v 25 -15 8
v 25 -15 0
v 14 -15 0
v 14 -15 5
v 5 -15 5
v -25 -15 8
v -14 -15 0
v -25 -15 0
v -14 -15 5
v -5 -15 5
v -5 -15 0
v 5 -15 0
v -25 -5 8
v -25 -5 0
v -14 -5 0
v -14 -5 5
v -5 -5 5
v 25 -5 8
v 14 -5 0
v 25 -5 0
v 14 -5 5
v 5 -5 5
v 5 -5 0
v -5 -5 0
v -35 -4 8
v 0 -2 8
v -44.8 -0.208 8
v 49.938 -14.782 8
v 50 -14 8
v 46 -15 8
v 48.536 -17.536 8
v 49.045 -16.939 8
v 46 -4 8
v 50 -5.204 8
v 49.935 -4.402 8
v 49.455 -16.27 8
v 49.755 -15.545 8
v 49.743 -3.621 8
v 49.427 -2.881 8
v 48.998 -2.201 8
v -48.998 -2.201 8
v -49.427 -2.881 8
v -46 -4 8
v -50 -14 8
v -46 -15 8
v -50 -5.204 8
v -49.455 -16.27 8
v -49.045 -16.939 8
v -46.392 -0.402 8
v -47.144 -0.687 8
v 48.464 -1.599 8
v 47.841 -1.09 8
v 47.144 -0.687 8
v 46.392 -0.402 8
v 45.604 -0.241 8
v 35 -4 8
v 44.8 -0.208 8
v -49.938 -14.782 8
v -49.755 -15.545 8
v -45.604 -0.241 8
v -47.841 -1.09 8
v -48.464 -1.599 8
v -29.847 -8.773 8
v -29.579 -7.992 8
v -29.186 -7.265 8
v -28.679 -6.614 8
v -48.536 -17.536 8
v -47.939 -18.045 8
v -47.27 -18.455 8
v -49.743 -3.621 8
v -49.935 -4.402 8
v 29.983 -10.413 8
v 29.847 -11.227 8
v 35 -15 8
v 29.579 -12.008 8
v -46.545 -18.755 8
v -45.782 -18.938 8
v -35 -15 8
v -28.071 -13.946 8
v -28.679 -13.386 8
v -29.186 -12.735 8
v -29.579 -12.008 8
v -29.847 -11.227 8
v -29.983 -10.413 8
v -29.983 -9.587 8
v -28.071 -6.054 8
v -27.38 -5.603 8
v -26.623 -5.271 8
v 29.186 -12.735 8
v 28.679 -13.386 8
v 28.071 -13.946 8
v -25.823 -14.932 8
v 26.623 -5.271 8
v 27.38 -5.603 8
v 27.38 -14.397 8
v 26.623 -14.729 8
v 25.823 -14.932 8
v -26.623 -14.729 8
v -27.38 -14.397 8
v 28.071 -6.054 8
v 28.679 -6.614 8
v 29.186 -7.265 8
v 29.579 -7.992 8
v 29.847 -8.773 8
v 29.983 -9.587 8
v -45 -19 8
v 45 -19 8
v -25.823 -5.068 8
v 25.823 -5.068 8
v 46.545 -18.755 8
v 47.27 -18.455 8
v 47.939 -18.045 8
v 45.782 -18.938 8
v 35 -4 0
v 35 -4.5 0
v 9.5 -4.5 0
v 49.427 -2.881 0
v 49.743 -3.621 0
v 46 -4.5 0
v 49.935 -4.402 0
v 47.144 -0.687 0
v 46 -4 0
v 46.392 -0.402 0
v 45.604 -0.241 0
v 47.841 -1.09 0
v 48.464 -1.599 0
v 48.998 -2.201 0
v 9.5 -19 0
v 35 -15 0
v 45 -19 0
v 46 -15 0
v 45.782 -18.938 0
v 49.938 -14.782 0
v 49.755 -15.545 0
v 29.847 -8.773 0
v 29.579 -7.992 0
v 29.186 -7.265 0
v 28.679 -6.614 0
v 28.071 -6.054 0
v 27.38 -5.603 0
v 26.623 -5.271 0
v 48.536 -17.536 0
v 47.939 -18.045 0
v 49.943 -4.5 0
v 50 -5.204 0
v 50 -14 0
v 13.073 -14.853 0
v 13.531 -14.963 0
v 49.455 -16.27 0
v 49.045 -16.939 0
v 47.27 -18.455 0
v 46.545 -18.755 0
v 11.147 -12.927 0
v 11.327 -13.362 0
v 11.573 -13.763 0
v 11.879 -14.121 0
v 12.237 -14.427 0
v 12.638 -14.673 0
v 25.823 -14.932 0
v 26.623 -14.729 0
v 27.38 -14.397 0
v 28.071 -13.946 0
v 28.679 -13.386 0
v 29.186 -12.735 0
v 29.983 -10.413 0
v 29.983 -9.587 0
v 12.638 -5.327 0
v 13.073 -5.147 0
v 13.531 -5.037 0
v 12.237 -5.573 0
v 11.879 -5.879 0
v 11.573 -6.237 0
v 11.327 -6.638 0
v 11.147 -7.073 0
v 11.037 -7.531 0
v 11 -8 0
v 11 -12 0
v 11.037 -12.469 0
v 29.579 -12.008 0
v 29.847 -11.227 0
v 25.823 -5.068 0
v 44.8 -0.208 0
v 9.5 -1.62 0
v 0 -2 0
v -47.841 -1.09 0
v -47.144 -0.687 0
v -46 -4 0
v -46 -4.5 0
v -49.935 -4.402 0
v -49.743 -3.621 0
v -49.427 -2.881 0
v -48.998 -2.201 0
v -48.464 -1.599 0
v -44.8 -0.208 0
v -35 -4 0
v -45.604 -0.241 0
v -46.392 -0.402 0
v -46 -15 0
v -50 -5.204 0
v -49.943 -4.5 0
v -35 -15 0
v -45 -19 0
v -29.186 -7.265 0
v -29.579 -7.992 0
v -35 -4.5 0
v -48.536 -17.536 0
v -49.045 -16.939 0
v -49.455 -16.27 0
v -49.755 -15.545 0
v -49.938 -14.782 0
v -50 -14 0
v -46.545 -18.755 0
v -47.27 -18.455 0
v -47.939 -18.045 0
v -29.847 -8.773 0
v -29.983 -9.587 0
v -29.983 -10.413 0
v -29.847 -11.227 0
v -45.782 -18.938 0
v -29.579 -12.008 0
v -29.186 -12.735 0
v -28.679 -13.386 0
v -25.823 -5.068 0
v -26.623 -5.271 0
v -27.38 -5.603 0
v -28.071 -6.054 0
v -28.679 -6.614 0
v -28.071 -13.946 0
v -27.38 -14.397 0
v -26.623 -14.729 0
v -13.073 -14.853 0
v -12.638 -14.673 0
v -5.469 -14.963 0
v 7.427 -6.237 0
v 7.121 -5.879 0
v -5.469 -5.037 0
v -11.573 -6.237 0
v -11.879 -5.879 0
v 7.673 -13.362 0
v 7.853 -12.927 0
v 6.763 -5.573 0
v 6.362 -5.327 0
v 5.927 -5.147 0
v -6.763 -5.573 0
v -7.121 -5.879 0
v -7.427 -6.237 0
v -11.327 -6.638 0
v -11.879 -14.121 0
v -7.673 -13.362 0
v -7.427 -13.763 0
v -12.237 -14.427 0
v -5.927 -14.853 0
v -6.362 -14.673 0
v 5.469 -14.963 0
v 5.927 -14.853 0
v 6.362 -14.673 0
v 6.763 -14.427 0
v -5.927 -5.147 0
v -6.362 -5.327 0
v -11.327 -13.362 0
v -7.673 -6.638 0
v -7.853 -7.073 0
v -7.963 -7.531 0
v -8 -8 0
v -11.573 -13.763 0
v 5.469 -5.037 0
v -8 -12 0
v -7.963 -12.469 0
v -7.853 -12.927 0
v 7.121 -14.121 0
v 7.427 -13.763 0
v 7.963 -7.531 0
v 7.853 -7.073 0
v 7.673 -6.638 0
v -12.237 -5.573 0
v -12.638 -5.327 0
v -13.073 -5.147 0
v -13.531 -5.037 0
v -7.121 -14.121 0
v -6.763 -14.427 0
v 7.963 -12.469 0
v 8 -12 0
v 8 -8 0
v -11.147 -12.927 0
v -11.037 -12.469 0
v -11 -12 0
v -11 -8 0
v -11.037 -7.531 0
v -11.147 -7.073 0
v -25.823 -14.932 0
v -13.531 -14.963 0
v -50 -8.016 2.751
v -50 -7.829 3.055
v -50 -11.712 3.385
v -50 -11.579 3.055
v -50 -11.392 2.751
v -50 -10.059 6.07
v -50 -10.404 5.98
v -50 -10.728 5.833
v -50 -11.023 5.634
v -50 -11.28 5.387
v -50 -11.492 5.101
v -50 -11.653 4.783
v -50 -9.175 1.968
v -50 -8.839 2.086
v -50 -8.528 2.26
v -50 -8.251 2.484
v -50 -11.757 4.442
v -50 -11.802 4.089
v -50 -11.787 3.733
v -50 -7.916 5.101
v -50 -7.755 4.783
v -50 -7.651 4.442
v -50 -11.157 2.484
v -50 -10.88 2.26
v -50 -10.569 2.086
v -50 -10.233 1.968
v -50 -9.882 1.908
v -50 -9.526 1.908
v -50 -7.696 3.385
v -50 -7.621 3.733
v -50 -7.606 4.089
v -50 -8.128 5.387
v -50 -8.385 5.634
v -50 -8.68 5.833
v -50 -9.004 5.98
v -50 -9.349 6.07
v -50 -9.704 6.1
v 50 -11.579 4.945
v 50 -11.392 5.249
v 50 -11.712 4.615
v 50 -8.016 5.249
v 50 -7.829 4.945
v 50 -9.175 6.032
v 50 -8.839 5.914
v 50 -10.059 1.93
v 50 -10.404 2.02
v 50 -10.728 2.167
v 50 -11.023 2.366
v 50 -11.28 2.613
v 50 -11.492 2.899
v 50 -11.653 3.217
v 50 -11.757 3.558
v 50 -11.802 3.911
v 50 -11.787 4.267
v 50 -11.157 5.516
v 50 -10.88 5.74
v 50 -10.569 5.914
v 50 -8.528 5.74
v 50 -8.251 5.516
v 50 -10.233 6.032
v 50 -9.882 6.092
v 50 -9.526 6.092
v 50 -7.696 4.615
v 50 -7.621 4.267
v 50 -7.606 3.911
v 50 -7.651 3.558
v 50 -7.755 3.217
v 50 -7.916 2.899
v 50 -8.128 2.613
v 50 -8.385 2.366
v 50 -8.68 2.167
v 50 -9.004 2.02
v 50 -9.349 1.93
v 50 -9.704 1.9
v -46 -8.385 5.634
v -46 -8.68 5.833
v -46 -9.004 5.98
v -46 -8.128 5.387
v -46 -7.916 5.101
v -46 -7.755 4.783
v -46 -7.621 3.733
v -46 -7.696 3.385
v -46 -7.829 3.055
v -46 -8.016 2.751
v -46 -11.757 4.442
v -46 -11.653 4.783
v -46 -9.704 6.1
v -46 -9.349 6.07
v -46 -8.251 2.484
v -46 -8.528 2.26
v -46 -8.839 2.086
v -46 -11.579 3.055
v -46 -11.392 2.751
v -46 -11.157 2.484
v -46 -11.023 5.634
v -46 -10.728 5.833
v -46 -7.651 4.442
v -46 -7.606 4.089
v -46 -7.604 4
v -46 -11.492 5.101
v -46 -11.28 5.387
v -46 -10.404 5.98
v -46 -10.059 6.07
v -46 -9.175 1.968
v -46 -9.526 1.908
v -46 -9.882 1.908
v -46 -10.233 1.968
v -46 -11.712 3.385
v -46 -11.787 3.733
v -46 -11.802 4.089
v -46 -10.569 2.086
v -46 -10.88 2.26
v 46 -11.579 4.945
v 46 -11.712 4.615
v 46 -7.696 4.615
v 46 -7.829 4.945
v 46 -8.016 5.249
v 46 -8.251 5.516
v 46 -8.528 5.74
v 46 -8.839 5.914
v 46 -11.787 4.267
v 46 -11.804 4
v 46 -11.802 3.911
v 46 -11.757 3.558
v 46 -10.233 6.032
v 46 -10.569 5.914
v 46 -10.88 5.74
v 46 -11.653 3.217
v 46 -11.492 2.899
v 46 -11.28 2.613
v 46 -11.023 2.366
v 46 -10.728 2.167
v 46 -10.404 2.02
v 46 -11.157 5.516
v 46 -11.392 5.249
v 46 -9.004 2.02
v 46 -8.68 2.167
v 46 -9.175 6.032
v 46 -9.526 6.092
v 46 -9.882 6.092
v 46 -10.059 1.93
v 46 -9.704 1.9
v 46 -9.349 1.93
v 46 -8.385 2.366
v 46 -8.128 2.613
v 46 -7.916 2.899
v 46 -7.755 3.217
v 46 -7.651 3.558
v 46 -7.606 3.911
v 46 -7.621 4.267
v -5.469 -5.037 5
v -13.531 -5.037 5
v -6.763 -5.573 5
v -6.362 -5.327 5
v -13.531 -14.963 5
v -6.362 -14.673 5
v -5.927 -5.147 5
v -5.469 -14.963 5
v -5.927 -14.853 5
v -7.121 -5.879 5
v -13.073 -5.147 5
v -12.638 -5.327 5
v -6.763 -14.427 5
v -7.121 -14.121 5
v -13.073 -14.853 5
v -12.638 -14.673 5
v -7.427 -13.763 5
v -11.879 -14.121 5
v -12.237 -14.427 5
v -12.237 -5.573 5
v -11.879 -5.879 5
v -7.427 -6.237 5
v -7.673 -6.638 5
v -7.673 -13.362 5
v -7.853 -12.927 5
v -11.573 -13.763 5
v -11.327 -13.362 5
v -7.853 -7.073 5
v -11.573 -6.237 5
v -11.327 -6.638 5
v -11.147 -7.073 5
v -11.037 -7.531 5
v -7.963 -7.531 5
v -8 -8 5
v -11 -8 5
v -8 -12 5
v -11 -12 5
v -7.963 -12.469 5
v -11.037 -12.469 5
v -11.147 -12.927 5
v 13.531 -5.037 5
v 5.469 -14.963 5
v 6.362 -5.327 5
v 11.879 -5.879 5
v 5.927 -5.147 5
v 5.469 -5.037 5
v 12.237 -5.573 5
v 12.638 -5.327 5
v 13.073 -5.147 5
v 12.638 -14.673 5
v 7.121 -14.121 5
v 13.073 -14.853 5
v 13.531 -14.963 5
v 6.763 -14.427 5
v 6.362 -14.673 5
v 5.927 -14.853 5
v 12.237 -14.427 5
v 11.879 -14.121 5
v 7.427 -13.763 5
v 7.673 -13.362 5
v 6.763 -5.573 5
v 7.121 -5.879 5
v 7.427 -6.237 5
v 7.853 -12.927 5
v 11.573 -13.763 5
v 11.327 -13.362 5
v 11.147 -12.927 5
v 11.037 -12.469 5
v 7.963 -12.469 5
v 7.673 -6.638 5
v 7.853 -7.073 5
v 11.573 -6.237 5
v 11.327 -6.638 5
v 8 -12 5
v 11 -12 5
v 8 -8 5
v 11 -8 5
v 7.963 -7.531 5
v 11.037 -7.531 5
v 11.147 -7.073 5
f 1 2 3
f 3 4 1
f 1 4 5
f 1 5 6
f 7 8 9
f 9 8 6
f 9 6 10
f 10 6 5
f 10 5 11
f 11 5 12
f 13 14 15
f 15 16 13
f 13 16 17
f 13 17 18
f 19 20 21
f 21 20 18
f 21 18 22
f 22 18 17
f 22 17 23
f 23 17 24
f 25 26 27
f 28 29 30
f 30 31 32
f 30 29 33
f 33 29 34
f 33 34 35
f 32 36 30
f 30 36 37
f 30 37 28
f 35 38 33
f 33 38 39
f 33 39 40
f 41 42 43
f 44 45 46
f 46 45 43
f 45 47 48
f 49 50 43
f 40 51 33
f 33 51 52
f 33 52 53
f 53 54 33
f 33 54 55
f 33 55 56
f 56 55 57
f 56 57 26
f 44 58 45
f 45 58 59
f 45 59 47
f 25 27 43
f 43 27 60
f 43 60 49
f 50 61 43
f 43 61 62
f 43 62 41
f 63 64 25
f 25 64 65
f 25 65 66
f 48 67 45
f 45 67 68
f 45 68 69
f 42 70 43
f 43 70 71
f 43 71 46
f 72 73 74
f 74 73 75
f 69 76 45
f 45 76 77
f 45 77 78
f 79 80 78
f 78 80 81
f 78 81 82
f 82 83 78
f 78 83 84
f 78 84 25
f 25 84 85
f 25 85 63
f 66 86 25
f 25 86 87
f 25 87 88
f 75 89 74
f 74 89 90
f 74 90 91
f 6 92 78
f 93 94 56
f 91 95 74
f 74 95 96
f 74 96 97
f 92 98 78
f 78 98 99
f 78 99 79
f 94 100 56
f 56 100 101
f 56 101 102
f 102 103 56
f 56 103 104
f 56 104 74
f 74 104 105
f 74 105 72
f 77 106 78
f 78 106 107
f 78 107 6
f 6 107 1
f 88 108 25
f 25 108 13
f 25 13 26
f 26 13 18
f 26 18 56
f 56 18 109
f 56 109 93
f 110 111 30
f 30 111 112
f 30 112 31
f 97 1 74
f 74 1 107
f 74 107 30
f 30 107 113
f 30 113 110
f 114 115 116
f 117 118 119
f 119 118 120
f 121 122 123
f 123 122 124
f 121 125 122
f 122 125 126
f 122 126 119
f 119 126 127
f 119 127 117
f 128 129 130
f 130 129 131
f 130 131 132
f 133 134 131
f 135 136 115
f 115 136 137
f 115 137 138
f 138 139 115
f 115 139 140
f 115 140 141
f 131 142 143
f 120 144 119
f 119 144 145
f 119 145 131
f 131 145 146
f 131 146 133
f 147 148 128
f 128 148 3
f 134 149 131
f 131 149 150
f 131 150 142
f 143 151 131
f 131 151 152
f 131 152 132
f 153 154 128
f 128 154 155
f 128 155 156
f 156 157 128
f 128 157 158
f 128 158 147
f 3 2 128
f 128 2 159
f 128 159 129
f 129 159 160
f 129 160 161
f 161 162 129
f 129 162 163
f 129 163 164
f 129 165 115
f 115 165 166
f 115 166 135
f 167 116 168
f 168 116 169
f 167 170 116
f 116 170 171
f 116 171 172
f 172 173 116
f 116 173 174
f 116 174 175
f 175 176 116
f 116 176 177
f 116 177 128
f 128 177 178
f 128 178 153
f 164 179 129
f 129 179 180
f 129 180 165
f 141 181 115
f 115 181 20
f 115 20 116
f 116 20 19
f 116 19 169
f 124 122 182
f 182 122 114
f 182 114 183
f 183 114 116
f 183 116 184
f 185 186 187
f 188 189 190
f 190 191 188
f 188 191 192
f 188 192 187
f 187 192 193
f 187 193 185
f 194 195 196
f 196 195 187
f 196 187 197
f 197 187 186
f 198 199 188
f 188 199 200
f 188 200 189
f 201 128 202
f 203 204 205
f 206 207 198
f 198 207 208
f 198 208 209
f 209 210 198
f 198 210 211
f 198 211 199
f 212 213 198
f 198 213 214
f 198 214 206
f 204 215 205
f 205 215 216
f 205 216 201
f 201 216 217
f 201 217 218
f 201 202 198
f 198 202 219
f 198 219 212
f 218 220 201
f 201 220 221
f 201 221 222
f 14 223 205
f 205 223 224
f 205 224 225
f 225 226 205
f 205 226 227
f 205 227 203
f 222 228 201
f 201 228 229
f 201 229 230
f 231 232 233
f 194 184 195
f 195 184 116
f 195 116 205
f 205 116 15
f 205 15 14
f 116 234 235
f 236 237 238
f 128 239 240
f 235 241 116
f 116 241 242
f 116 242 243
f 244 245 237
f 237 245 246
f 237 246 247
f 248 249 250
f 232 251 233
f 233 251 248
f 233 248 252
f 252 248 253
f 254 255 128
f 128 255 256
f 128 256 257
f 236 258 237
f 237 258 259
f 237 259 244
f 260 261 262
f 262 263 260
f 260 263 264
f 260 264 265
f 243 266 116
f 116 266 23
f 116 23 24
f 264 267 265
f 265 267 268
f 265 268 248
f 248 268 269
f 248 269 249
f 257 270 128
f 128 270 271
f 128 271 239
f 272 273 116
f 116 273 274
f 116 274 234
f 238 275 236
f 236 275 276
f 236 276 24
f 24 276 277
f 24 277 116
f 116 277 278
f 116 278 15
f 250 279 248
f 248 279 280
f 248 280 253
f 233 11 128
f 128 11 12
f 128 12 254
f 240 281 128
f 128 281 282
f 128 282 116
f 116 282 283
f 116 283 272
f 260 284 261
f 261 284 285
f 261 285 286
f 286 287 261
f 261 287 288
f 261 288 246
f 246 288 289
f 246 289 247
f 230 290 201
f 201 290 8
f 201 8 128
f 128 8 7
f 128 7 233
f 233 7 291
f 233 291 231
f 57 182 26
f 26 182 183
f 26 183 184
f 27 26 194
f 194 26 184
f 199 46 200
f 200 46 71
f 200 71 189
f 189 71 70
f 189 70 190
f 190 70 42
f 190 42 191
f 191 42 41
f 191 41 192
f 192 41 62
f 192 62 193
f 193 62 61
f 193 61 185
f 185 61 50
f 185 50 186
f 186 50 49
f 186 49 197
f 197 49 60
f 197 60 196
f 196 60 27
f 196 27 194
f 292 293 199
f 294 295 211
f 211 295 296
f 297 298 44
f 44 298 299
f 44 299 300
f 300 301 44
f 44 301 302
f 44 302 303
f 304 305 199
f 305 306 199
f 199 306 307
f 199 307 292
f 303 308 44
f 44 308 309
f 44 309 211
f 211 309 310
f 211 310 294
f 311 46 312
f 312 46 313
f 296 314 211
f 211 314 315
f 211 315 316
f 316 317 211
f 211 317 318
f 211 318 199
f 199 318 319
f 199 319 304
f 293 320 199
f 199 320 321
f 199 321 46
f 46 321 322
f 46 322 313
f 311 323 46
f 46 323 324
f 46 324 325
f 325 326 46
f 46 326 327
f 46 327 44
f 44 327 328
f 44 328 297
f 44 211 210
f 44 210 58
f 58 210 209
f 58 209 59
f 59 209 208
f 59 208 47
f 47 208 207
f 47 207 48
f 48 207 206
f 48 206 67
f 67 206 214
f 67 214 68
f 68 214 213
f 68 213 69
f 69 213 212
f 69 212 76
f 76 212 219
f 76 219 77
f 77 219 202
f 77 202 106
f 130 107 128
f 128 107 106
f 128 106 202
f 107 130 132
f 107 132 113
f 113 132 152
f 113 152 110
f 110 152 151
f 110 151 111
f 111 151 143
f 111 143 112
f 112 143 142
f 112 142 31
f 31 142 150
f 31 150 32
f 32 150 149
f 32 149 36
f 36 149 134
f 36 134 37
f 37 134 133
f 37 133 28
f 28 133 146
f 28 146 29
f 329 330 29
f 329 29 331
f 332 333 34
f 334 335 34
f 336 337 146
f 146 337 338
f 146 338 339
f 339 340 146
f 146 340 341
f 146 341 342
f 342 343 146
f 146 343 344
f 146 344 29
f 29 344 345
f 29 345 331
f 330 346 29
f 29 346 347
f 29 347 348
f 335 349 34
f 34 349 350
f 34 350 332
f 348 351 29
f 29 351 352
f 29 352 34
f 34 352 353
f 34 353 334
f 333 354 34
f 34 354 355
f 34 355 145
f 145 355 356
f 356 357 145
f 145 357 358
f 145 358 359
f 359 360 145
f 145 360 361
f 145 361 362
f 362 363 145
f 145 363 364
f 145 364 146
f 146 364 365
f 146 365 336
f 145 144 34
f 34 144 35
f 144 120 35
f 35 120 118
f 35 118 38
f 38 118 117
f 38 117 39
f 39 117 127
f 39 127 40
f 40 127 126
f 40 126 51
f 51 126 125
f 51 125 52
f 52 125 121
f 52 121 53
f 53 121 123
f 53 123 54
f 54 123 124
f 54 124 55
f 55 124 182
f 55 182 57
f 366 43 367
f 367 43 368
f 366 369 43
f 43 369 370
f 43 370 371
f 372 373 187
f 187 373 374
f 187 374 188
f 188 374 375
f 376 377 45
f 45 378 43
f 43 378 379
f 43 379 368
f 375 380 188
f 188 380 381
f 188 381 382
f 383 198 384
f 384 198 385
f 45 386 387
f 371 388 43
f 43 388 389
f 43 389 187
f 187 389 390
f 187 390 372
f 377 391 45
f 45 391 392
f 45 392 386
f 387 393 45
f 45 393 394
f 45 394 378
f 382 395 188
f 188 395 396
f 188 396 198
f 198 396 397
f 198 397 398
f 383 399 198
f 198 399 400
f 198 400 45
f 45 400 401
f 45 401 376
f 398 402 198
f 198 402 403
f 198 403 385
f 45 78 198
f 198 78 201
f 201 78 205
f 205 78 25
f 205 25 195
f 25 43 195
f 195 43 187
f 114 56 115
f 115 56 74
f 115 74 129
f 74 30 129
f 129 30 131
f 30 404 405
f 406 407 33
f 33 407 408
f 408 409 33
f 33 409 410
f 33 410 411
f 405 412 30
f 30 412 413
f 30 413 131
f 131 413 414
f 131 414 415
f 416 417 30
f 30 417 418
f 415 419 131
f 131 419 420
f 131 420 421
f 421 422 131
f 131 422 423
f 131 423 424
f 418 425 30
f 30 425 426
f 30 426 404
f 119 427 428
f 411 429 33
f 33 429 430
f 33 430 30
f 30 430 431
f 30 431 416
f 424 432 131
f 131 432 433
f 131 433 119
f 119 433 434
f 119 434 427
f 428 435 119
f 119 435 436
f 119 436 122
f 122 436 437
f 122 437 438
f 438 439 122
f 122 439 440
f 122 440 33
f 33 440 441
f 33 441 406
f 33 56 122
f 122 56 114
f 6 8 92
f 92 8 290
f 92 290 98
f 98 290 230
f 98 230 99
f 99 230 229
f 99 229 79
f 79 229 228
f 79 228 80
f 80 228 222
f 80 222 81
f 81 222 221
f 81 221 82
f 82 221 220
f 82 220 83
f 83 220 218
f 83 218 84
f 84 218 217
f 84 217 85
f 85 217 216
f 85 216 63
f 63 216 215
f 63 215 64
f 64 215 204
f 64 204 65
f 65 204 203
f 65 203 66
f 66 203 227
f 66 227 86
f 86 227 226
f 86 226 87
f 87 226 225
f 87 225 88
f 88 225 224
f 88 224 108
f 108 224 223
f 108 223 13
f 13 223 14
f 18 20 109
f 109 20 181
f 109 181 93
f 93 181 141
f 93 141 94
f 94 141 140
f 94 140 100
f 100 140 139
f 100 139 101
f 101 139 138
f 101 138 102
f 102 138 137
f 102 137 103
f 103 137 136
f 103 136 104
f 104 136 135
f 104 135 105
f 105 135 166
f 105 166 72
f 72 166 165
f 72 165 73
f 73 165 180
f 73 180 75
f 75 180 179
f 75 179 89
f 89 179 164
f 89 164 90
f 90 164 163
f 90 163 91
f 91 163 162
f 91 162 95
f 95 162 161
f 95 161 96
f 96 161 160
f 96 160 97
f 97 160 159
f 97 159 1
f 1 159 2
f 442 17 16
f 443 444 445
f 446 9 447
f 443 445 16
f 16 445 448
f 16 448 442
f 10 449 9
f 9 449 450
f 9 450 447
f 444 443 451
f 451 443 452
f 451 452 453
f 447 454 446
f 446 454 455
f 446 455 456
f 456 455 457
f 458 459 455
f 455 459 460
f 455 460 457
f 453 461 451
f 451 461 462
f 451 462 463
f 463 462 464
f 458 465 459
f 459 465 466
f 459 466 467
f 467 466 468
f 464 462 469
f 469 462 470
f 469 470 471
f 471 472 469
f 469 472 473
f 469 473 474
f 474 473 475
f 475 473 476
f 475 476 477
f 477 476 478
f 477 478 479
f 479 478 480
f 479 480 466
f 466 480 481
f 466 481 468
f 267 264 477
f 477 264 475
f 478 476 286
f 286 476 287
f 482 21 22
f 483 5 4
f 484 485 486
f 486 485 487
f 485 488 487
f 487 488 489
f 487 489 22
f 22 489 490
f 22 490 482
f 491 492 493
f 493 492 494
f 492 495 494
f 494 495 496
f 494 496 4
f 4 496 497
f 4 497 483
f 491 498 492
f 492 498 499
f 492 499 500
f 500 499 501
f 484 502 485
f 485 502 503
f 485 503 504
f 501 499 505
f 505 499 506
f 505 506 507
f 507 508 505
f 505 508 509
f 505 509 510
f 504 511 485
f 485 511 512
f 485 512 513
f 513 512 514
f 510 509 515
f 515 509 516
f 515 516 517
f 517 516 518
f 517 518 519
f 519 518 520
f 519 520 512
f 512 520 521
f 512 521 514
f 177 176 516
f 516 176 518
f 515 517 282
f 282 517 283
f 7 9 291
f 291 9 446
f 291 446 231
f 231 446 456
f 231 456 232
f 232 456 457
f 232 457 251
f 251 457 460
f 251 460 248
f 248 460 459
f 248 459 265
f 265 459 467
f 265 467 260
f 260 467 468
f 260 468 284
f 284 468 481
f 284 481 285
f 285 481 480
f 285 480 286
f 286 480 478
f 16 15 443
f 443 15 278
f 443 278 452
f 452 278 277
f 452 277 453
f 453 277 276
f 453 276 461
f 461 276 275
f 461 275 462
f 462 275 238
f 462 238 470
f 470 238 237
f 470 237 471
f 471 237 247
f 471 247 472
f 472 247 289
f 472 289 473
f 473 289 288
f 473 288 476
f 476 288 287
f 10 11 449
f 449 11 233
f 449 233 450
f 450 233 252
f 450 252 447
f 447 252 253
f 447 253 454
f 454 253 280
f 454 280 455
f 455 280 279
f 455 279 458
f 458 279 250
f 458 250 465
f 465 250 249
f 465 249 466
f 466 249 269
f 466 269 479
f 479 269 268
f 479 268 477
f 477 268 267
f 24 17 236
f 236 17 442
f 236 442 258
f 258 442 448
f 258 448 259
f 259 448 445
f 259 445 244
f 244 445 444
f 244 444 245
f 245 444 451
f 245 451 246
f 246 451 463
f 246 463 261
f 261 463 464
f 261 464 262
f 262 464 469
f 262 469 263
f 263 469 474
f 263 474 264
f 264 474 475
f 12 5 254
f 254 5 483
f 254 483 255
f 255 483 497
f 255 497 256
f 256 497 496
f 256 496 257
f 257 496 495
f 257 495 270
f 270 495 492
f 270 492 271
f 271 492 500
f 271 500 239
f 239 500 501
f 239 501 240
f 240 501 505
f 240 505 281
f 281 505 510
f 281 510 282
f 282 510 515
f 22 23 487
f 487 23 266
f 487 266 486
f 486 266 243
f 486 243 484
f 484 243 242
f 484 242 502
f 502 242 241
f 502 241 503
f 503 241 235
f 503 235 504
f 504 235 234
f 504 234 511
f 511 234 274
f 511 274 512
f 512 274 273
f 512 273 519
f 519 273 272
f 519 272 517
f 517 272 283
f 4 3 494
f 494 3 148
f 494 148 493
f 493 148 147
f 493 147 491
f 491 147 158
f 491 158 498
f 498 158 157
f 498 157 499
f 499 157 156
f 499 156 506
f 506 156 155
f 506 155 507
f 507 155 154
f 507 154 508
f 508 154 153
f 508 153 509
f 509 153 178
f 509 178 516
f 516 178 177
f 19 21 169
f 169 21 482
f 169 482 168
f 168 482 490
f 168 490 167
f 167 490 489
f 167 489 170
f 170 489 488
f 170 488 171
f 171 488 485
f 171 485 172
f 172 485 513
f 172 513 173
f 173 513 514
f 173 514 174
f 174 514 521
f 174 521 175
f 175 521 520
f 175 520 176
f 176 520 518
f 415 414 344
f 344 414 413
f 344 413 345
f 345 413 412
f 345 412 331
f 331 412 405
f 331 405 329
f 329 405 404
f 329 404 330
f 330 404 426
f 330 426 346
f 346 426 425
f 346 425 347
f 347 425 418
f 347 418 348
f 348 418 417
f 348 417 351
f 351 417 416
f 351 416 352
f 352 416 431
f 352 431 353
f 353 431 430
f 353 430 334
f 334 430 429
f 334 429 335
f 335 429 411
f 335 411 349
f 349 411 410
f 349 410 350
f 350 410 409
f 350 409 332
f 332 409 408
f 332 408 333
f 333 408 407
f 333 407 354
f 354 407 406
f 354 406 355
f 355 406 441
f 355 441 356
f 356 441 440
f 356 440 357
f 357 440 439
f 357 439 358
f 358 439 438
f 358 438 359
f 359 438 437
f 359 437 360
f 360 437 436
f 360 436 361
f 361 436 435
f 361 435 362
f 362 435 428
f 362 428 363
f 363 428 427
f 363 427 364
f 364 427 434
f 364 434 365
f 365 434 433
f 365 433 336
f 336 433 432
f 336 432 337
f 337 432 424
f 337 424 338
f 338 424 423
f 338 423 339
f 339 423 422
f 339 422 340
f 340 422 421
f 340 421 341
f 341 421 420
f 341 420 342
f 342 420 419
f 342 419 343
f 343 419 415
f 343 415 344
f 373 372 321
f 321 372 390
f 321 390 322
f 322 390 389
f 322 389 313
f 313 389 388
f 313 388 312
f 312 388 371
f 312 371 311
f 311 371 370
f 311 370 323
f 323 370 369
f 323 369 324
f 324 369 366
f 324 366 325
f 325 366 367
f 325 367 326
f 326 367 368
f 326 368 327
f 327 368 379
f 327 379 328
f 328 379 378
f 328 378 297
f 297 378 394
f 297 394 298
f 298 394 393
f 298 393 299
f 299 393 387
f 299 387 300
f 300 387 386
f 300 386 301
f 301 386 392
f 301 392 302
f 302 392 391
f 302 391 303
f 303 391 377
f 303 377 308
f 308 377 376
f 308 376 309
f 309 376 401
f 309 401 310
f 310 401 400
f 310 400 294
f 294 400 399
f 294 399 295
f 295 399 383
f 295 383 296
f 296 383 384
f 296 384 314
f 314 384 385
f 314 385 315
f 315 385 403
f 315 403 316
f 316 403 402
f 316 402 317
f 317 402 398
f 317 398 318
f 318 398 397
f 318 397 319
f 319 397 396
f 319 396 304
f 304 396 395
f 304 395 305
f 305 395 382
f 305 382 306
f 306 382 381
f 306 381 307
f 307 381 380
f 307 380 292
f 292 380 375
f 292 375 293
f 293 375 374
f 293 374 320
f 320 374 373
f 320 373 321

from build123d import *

# Parameters (mm, degrees)
SKETCH1_W                       = 11
SKETCH1_H                       = 11
BOSS_EXTRUDE1_DEPTH             = 8
BOSS_EXTRUDE2_REACH             = 16
SKETCH2_W                       = 3
SKETCH2_H                       = 5
FILLET1_R                       = 3
M5_TAPPED_HOLE1_D               = 4.2
M5_TAPPED_HOLE1_DEPTH           = 4
M5_TAPPED_HOLE1_ON_FACE_2_D     = 4.2
M5_TAPPED_HOLE1_ON_FACE_2_DEPTH = 4


with BuildPart() as part:
    # Sketch1 → Boss-Extrude1 (new body)
    with BuildSketch(Plane.XY):
        with BuildLine():
            Line((50, -5.203998401), (50, -14))
            ThreePointArc((50, -14), (48.535533906, -17.535533906), (45, -19))
            Line((45, -19), (-45, -19))
            ThreePointArc((-45, -19), (-48.535533906, -17.535533906), (-50, -14))
            Line((-50, -14), (-50, -5.203998401))
            ThreePointArc((-50, -5.203998401), (-48.46415928, -1.59850253), (-44.800159808, -0.207993608))
            Line((-44.800159808, -0.207993608), (0, -2))
            Line((0, -2), (44.800159808, -0.207993608))
            ThreePointArc((44.800159808, -0.207993608), (48.46415928, -1.59850253), (50, -5.203998401))
        make_face()
        with Locations((-40.5, -9.5)):
            Rectangle(SKETCH1_W, SKETCH1_H, mode=Mode.SUBTRACT)
        with Locations((40.5, -9.5)):
            Rectangle(SKETCH1_W, SKETCH1_H, mode=Mode.SUBTRACT)
        with BuildLine():
            Line((-25, -5), (25, -5))
            ThreePointArc((25, -5), (30, -10), (25, -15))
            Line((25, -15), (-25, -15))
            ThreePointArc((-25, -15), (-30, -10), (-25, -5))
        make_face(mode=Mode.SUBTRACT)
    extrude(amount=BOSS_EXTRUDE1_DEPTH)

    # Sketch2 → Boss-Extrude2 (add, up to next)
    with BuildSketch(Plane.XZ.offset(5), mode=Mode.PRIVATE) as boss_extrude2_sk1:
        with Locations((-9.5, 2.5)):
            Rectangle(SKETCH2_W, SKETCH2_H)
    boss_extrude2_tool1 = extrude(boss_extrude2_sk1.sketch, amount=BOSS_EXTRUDE2_REACH, mode=Mode.PRIVATE) - part.part
    add(boss_extrude2_tool1.solids().sort_by_distance((-9.5, -5, 2.5))[0])
    # Sketch2 → Boss-Extrude2 (add, up to next)
    with BuildSketch(Plane.XZ.offset(5), mode=Mode.PRIVATE) as boss_extrude2_sk2:
        with Locations((9.5, 2.5)):
            Rectangle(SKETCH2_W, SKETCH2_H)
    boss_extrude2_tool2 = extrude(boss_extrude2_sk2.sketch, amount=BOSS_EXTRUDE2_REACH, mode=Mode.PRIVATE) - part.part
    add(boss_extrude2_tool2.solids().sort_by_distance((9.5, -5, 2.5))[0])

    # Fillet1
    fillet1_edges = [part.edges().sort_by_distance(p)[0] for p in [
        (-8, -15, 2.5),
        (-8, -5, 2.5),
        (-11, -15, 2.5),
        (-11, -5, 2.5),
        (11, -15, 2.5),
        (11, -5, 2.5),
        (8, -15, 2.5),
        (8, -5, 2.5),
    ]]
    fillet(fillet1_edges, radius=FILLET1_R)

    # M5 Tapped Hole1
    with Locations(Plane(origin=(-50, -9.703998401, 4), x_dir=(0, 0, -1), z_dir=(-1, 0, 0))):
        with Locations((0, 0)):
            Hole(M5_TAPPED_HOLE1_D / 2, depth=M5_TAPPED_HOLE1_DEPTH)

    # M5 Tapped Hole1 on face 2
    with Locations(Plane(origin=(50, -9.703998401, 4), x_dir=(0, 0, 1), z_dir=(1, 0, 0))):
        with Locations((0, 0)):
            Hole(M5_TAPPED_HOLE1_ON_FACE_2_D / 2, depth=M5_TAPPED_HOLE1_ON_FACE_2_DEPTH)


solid = part.part
